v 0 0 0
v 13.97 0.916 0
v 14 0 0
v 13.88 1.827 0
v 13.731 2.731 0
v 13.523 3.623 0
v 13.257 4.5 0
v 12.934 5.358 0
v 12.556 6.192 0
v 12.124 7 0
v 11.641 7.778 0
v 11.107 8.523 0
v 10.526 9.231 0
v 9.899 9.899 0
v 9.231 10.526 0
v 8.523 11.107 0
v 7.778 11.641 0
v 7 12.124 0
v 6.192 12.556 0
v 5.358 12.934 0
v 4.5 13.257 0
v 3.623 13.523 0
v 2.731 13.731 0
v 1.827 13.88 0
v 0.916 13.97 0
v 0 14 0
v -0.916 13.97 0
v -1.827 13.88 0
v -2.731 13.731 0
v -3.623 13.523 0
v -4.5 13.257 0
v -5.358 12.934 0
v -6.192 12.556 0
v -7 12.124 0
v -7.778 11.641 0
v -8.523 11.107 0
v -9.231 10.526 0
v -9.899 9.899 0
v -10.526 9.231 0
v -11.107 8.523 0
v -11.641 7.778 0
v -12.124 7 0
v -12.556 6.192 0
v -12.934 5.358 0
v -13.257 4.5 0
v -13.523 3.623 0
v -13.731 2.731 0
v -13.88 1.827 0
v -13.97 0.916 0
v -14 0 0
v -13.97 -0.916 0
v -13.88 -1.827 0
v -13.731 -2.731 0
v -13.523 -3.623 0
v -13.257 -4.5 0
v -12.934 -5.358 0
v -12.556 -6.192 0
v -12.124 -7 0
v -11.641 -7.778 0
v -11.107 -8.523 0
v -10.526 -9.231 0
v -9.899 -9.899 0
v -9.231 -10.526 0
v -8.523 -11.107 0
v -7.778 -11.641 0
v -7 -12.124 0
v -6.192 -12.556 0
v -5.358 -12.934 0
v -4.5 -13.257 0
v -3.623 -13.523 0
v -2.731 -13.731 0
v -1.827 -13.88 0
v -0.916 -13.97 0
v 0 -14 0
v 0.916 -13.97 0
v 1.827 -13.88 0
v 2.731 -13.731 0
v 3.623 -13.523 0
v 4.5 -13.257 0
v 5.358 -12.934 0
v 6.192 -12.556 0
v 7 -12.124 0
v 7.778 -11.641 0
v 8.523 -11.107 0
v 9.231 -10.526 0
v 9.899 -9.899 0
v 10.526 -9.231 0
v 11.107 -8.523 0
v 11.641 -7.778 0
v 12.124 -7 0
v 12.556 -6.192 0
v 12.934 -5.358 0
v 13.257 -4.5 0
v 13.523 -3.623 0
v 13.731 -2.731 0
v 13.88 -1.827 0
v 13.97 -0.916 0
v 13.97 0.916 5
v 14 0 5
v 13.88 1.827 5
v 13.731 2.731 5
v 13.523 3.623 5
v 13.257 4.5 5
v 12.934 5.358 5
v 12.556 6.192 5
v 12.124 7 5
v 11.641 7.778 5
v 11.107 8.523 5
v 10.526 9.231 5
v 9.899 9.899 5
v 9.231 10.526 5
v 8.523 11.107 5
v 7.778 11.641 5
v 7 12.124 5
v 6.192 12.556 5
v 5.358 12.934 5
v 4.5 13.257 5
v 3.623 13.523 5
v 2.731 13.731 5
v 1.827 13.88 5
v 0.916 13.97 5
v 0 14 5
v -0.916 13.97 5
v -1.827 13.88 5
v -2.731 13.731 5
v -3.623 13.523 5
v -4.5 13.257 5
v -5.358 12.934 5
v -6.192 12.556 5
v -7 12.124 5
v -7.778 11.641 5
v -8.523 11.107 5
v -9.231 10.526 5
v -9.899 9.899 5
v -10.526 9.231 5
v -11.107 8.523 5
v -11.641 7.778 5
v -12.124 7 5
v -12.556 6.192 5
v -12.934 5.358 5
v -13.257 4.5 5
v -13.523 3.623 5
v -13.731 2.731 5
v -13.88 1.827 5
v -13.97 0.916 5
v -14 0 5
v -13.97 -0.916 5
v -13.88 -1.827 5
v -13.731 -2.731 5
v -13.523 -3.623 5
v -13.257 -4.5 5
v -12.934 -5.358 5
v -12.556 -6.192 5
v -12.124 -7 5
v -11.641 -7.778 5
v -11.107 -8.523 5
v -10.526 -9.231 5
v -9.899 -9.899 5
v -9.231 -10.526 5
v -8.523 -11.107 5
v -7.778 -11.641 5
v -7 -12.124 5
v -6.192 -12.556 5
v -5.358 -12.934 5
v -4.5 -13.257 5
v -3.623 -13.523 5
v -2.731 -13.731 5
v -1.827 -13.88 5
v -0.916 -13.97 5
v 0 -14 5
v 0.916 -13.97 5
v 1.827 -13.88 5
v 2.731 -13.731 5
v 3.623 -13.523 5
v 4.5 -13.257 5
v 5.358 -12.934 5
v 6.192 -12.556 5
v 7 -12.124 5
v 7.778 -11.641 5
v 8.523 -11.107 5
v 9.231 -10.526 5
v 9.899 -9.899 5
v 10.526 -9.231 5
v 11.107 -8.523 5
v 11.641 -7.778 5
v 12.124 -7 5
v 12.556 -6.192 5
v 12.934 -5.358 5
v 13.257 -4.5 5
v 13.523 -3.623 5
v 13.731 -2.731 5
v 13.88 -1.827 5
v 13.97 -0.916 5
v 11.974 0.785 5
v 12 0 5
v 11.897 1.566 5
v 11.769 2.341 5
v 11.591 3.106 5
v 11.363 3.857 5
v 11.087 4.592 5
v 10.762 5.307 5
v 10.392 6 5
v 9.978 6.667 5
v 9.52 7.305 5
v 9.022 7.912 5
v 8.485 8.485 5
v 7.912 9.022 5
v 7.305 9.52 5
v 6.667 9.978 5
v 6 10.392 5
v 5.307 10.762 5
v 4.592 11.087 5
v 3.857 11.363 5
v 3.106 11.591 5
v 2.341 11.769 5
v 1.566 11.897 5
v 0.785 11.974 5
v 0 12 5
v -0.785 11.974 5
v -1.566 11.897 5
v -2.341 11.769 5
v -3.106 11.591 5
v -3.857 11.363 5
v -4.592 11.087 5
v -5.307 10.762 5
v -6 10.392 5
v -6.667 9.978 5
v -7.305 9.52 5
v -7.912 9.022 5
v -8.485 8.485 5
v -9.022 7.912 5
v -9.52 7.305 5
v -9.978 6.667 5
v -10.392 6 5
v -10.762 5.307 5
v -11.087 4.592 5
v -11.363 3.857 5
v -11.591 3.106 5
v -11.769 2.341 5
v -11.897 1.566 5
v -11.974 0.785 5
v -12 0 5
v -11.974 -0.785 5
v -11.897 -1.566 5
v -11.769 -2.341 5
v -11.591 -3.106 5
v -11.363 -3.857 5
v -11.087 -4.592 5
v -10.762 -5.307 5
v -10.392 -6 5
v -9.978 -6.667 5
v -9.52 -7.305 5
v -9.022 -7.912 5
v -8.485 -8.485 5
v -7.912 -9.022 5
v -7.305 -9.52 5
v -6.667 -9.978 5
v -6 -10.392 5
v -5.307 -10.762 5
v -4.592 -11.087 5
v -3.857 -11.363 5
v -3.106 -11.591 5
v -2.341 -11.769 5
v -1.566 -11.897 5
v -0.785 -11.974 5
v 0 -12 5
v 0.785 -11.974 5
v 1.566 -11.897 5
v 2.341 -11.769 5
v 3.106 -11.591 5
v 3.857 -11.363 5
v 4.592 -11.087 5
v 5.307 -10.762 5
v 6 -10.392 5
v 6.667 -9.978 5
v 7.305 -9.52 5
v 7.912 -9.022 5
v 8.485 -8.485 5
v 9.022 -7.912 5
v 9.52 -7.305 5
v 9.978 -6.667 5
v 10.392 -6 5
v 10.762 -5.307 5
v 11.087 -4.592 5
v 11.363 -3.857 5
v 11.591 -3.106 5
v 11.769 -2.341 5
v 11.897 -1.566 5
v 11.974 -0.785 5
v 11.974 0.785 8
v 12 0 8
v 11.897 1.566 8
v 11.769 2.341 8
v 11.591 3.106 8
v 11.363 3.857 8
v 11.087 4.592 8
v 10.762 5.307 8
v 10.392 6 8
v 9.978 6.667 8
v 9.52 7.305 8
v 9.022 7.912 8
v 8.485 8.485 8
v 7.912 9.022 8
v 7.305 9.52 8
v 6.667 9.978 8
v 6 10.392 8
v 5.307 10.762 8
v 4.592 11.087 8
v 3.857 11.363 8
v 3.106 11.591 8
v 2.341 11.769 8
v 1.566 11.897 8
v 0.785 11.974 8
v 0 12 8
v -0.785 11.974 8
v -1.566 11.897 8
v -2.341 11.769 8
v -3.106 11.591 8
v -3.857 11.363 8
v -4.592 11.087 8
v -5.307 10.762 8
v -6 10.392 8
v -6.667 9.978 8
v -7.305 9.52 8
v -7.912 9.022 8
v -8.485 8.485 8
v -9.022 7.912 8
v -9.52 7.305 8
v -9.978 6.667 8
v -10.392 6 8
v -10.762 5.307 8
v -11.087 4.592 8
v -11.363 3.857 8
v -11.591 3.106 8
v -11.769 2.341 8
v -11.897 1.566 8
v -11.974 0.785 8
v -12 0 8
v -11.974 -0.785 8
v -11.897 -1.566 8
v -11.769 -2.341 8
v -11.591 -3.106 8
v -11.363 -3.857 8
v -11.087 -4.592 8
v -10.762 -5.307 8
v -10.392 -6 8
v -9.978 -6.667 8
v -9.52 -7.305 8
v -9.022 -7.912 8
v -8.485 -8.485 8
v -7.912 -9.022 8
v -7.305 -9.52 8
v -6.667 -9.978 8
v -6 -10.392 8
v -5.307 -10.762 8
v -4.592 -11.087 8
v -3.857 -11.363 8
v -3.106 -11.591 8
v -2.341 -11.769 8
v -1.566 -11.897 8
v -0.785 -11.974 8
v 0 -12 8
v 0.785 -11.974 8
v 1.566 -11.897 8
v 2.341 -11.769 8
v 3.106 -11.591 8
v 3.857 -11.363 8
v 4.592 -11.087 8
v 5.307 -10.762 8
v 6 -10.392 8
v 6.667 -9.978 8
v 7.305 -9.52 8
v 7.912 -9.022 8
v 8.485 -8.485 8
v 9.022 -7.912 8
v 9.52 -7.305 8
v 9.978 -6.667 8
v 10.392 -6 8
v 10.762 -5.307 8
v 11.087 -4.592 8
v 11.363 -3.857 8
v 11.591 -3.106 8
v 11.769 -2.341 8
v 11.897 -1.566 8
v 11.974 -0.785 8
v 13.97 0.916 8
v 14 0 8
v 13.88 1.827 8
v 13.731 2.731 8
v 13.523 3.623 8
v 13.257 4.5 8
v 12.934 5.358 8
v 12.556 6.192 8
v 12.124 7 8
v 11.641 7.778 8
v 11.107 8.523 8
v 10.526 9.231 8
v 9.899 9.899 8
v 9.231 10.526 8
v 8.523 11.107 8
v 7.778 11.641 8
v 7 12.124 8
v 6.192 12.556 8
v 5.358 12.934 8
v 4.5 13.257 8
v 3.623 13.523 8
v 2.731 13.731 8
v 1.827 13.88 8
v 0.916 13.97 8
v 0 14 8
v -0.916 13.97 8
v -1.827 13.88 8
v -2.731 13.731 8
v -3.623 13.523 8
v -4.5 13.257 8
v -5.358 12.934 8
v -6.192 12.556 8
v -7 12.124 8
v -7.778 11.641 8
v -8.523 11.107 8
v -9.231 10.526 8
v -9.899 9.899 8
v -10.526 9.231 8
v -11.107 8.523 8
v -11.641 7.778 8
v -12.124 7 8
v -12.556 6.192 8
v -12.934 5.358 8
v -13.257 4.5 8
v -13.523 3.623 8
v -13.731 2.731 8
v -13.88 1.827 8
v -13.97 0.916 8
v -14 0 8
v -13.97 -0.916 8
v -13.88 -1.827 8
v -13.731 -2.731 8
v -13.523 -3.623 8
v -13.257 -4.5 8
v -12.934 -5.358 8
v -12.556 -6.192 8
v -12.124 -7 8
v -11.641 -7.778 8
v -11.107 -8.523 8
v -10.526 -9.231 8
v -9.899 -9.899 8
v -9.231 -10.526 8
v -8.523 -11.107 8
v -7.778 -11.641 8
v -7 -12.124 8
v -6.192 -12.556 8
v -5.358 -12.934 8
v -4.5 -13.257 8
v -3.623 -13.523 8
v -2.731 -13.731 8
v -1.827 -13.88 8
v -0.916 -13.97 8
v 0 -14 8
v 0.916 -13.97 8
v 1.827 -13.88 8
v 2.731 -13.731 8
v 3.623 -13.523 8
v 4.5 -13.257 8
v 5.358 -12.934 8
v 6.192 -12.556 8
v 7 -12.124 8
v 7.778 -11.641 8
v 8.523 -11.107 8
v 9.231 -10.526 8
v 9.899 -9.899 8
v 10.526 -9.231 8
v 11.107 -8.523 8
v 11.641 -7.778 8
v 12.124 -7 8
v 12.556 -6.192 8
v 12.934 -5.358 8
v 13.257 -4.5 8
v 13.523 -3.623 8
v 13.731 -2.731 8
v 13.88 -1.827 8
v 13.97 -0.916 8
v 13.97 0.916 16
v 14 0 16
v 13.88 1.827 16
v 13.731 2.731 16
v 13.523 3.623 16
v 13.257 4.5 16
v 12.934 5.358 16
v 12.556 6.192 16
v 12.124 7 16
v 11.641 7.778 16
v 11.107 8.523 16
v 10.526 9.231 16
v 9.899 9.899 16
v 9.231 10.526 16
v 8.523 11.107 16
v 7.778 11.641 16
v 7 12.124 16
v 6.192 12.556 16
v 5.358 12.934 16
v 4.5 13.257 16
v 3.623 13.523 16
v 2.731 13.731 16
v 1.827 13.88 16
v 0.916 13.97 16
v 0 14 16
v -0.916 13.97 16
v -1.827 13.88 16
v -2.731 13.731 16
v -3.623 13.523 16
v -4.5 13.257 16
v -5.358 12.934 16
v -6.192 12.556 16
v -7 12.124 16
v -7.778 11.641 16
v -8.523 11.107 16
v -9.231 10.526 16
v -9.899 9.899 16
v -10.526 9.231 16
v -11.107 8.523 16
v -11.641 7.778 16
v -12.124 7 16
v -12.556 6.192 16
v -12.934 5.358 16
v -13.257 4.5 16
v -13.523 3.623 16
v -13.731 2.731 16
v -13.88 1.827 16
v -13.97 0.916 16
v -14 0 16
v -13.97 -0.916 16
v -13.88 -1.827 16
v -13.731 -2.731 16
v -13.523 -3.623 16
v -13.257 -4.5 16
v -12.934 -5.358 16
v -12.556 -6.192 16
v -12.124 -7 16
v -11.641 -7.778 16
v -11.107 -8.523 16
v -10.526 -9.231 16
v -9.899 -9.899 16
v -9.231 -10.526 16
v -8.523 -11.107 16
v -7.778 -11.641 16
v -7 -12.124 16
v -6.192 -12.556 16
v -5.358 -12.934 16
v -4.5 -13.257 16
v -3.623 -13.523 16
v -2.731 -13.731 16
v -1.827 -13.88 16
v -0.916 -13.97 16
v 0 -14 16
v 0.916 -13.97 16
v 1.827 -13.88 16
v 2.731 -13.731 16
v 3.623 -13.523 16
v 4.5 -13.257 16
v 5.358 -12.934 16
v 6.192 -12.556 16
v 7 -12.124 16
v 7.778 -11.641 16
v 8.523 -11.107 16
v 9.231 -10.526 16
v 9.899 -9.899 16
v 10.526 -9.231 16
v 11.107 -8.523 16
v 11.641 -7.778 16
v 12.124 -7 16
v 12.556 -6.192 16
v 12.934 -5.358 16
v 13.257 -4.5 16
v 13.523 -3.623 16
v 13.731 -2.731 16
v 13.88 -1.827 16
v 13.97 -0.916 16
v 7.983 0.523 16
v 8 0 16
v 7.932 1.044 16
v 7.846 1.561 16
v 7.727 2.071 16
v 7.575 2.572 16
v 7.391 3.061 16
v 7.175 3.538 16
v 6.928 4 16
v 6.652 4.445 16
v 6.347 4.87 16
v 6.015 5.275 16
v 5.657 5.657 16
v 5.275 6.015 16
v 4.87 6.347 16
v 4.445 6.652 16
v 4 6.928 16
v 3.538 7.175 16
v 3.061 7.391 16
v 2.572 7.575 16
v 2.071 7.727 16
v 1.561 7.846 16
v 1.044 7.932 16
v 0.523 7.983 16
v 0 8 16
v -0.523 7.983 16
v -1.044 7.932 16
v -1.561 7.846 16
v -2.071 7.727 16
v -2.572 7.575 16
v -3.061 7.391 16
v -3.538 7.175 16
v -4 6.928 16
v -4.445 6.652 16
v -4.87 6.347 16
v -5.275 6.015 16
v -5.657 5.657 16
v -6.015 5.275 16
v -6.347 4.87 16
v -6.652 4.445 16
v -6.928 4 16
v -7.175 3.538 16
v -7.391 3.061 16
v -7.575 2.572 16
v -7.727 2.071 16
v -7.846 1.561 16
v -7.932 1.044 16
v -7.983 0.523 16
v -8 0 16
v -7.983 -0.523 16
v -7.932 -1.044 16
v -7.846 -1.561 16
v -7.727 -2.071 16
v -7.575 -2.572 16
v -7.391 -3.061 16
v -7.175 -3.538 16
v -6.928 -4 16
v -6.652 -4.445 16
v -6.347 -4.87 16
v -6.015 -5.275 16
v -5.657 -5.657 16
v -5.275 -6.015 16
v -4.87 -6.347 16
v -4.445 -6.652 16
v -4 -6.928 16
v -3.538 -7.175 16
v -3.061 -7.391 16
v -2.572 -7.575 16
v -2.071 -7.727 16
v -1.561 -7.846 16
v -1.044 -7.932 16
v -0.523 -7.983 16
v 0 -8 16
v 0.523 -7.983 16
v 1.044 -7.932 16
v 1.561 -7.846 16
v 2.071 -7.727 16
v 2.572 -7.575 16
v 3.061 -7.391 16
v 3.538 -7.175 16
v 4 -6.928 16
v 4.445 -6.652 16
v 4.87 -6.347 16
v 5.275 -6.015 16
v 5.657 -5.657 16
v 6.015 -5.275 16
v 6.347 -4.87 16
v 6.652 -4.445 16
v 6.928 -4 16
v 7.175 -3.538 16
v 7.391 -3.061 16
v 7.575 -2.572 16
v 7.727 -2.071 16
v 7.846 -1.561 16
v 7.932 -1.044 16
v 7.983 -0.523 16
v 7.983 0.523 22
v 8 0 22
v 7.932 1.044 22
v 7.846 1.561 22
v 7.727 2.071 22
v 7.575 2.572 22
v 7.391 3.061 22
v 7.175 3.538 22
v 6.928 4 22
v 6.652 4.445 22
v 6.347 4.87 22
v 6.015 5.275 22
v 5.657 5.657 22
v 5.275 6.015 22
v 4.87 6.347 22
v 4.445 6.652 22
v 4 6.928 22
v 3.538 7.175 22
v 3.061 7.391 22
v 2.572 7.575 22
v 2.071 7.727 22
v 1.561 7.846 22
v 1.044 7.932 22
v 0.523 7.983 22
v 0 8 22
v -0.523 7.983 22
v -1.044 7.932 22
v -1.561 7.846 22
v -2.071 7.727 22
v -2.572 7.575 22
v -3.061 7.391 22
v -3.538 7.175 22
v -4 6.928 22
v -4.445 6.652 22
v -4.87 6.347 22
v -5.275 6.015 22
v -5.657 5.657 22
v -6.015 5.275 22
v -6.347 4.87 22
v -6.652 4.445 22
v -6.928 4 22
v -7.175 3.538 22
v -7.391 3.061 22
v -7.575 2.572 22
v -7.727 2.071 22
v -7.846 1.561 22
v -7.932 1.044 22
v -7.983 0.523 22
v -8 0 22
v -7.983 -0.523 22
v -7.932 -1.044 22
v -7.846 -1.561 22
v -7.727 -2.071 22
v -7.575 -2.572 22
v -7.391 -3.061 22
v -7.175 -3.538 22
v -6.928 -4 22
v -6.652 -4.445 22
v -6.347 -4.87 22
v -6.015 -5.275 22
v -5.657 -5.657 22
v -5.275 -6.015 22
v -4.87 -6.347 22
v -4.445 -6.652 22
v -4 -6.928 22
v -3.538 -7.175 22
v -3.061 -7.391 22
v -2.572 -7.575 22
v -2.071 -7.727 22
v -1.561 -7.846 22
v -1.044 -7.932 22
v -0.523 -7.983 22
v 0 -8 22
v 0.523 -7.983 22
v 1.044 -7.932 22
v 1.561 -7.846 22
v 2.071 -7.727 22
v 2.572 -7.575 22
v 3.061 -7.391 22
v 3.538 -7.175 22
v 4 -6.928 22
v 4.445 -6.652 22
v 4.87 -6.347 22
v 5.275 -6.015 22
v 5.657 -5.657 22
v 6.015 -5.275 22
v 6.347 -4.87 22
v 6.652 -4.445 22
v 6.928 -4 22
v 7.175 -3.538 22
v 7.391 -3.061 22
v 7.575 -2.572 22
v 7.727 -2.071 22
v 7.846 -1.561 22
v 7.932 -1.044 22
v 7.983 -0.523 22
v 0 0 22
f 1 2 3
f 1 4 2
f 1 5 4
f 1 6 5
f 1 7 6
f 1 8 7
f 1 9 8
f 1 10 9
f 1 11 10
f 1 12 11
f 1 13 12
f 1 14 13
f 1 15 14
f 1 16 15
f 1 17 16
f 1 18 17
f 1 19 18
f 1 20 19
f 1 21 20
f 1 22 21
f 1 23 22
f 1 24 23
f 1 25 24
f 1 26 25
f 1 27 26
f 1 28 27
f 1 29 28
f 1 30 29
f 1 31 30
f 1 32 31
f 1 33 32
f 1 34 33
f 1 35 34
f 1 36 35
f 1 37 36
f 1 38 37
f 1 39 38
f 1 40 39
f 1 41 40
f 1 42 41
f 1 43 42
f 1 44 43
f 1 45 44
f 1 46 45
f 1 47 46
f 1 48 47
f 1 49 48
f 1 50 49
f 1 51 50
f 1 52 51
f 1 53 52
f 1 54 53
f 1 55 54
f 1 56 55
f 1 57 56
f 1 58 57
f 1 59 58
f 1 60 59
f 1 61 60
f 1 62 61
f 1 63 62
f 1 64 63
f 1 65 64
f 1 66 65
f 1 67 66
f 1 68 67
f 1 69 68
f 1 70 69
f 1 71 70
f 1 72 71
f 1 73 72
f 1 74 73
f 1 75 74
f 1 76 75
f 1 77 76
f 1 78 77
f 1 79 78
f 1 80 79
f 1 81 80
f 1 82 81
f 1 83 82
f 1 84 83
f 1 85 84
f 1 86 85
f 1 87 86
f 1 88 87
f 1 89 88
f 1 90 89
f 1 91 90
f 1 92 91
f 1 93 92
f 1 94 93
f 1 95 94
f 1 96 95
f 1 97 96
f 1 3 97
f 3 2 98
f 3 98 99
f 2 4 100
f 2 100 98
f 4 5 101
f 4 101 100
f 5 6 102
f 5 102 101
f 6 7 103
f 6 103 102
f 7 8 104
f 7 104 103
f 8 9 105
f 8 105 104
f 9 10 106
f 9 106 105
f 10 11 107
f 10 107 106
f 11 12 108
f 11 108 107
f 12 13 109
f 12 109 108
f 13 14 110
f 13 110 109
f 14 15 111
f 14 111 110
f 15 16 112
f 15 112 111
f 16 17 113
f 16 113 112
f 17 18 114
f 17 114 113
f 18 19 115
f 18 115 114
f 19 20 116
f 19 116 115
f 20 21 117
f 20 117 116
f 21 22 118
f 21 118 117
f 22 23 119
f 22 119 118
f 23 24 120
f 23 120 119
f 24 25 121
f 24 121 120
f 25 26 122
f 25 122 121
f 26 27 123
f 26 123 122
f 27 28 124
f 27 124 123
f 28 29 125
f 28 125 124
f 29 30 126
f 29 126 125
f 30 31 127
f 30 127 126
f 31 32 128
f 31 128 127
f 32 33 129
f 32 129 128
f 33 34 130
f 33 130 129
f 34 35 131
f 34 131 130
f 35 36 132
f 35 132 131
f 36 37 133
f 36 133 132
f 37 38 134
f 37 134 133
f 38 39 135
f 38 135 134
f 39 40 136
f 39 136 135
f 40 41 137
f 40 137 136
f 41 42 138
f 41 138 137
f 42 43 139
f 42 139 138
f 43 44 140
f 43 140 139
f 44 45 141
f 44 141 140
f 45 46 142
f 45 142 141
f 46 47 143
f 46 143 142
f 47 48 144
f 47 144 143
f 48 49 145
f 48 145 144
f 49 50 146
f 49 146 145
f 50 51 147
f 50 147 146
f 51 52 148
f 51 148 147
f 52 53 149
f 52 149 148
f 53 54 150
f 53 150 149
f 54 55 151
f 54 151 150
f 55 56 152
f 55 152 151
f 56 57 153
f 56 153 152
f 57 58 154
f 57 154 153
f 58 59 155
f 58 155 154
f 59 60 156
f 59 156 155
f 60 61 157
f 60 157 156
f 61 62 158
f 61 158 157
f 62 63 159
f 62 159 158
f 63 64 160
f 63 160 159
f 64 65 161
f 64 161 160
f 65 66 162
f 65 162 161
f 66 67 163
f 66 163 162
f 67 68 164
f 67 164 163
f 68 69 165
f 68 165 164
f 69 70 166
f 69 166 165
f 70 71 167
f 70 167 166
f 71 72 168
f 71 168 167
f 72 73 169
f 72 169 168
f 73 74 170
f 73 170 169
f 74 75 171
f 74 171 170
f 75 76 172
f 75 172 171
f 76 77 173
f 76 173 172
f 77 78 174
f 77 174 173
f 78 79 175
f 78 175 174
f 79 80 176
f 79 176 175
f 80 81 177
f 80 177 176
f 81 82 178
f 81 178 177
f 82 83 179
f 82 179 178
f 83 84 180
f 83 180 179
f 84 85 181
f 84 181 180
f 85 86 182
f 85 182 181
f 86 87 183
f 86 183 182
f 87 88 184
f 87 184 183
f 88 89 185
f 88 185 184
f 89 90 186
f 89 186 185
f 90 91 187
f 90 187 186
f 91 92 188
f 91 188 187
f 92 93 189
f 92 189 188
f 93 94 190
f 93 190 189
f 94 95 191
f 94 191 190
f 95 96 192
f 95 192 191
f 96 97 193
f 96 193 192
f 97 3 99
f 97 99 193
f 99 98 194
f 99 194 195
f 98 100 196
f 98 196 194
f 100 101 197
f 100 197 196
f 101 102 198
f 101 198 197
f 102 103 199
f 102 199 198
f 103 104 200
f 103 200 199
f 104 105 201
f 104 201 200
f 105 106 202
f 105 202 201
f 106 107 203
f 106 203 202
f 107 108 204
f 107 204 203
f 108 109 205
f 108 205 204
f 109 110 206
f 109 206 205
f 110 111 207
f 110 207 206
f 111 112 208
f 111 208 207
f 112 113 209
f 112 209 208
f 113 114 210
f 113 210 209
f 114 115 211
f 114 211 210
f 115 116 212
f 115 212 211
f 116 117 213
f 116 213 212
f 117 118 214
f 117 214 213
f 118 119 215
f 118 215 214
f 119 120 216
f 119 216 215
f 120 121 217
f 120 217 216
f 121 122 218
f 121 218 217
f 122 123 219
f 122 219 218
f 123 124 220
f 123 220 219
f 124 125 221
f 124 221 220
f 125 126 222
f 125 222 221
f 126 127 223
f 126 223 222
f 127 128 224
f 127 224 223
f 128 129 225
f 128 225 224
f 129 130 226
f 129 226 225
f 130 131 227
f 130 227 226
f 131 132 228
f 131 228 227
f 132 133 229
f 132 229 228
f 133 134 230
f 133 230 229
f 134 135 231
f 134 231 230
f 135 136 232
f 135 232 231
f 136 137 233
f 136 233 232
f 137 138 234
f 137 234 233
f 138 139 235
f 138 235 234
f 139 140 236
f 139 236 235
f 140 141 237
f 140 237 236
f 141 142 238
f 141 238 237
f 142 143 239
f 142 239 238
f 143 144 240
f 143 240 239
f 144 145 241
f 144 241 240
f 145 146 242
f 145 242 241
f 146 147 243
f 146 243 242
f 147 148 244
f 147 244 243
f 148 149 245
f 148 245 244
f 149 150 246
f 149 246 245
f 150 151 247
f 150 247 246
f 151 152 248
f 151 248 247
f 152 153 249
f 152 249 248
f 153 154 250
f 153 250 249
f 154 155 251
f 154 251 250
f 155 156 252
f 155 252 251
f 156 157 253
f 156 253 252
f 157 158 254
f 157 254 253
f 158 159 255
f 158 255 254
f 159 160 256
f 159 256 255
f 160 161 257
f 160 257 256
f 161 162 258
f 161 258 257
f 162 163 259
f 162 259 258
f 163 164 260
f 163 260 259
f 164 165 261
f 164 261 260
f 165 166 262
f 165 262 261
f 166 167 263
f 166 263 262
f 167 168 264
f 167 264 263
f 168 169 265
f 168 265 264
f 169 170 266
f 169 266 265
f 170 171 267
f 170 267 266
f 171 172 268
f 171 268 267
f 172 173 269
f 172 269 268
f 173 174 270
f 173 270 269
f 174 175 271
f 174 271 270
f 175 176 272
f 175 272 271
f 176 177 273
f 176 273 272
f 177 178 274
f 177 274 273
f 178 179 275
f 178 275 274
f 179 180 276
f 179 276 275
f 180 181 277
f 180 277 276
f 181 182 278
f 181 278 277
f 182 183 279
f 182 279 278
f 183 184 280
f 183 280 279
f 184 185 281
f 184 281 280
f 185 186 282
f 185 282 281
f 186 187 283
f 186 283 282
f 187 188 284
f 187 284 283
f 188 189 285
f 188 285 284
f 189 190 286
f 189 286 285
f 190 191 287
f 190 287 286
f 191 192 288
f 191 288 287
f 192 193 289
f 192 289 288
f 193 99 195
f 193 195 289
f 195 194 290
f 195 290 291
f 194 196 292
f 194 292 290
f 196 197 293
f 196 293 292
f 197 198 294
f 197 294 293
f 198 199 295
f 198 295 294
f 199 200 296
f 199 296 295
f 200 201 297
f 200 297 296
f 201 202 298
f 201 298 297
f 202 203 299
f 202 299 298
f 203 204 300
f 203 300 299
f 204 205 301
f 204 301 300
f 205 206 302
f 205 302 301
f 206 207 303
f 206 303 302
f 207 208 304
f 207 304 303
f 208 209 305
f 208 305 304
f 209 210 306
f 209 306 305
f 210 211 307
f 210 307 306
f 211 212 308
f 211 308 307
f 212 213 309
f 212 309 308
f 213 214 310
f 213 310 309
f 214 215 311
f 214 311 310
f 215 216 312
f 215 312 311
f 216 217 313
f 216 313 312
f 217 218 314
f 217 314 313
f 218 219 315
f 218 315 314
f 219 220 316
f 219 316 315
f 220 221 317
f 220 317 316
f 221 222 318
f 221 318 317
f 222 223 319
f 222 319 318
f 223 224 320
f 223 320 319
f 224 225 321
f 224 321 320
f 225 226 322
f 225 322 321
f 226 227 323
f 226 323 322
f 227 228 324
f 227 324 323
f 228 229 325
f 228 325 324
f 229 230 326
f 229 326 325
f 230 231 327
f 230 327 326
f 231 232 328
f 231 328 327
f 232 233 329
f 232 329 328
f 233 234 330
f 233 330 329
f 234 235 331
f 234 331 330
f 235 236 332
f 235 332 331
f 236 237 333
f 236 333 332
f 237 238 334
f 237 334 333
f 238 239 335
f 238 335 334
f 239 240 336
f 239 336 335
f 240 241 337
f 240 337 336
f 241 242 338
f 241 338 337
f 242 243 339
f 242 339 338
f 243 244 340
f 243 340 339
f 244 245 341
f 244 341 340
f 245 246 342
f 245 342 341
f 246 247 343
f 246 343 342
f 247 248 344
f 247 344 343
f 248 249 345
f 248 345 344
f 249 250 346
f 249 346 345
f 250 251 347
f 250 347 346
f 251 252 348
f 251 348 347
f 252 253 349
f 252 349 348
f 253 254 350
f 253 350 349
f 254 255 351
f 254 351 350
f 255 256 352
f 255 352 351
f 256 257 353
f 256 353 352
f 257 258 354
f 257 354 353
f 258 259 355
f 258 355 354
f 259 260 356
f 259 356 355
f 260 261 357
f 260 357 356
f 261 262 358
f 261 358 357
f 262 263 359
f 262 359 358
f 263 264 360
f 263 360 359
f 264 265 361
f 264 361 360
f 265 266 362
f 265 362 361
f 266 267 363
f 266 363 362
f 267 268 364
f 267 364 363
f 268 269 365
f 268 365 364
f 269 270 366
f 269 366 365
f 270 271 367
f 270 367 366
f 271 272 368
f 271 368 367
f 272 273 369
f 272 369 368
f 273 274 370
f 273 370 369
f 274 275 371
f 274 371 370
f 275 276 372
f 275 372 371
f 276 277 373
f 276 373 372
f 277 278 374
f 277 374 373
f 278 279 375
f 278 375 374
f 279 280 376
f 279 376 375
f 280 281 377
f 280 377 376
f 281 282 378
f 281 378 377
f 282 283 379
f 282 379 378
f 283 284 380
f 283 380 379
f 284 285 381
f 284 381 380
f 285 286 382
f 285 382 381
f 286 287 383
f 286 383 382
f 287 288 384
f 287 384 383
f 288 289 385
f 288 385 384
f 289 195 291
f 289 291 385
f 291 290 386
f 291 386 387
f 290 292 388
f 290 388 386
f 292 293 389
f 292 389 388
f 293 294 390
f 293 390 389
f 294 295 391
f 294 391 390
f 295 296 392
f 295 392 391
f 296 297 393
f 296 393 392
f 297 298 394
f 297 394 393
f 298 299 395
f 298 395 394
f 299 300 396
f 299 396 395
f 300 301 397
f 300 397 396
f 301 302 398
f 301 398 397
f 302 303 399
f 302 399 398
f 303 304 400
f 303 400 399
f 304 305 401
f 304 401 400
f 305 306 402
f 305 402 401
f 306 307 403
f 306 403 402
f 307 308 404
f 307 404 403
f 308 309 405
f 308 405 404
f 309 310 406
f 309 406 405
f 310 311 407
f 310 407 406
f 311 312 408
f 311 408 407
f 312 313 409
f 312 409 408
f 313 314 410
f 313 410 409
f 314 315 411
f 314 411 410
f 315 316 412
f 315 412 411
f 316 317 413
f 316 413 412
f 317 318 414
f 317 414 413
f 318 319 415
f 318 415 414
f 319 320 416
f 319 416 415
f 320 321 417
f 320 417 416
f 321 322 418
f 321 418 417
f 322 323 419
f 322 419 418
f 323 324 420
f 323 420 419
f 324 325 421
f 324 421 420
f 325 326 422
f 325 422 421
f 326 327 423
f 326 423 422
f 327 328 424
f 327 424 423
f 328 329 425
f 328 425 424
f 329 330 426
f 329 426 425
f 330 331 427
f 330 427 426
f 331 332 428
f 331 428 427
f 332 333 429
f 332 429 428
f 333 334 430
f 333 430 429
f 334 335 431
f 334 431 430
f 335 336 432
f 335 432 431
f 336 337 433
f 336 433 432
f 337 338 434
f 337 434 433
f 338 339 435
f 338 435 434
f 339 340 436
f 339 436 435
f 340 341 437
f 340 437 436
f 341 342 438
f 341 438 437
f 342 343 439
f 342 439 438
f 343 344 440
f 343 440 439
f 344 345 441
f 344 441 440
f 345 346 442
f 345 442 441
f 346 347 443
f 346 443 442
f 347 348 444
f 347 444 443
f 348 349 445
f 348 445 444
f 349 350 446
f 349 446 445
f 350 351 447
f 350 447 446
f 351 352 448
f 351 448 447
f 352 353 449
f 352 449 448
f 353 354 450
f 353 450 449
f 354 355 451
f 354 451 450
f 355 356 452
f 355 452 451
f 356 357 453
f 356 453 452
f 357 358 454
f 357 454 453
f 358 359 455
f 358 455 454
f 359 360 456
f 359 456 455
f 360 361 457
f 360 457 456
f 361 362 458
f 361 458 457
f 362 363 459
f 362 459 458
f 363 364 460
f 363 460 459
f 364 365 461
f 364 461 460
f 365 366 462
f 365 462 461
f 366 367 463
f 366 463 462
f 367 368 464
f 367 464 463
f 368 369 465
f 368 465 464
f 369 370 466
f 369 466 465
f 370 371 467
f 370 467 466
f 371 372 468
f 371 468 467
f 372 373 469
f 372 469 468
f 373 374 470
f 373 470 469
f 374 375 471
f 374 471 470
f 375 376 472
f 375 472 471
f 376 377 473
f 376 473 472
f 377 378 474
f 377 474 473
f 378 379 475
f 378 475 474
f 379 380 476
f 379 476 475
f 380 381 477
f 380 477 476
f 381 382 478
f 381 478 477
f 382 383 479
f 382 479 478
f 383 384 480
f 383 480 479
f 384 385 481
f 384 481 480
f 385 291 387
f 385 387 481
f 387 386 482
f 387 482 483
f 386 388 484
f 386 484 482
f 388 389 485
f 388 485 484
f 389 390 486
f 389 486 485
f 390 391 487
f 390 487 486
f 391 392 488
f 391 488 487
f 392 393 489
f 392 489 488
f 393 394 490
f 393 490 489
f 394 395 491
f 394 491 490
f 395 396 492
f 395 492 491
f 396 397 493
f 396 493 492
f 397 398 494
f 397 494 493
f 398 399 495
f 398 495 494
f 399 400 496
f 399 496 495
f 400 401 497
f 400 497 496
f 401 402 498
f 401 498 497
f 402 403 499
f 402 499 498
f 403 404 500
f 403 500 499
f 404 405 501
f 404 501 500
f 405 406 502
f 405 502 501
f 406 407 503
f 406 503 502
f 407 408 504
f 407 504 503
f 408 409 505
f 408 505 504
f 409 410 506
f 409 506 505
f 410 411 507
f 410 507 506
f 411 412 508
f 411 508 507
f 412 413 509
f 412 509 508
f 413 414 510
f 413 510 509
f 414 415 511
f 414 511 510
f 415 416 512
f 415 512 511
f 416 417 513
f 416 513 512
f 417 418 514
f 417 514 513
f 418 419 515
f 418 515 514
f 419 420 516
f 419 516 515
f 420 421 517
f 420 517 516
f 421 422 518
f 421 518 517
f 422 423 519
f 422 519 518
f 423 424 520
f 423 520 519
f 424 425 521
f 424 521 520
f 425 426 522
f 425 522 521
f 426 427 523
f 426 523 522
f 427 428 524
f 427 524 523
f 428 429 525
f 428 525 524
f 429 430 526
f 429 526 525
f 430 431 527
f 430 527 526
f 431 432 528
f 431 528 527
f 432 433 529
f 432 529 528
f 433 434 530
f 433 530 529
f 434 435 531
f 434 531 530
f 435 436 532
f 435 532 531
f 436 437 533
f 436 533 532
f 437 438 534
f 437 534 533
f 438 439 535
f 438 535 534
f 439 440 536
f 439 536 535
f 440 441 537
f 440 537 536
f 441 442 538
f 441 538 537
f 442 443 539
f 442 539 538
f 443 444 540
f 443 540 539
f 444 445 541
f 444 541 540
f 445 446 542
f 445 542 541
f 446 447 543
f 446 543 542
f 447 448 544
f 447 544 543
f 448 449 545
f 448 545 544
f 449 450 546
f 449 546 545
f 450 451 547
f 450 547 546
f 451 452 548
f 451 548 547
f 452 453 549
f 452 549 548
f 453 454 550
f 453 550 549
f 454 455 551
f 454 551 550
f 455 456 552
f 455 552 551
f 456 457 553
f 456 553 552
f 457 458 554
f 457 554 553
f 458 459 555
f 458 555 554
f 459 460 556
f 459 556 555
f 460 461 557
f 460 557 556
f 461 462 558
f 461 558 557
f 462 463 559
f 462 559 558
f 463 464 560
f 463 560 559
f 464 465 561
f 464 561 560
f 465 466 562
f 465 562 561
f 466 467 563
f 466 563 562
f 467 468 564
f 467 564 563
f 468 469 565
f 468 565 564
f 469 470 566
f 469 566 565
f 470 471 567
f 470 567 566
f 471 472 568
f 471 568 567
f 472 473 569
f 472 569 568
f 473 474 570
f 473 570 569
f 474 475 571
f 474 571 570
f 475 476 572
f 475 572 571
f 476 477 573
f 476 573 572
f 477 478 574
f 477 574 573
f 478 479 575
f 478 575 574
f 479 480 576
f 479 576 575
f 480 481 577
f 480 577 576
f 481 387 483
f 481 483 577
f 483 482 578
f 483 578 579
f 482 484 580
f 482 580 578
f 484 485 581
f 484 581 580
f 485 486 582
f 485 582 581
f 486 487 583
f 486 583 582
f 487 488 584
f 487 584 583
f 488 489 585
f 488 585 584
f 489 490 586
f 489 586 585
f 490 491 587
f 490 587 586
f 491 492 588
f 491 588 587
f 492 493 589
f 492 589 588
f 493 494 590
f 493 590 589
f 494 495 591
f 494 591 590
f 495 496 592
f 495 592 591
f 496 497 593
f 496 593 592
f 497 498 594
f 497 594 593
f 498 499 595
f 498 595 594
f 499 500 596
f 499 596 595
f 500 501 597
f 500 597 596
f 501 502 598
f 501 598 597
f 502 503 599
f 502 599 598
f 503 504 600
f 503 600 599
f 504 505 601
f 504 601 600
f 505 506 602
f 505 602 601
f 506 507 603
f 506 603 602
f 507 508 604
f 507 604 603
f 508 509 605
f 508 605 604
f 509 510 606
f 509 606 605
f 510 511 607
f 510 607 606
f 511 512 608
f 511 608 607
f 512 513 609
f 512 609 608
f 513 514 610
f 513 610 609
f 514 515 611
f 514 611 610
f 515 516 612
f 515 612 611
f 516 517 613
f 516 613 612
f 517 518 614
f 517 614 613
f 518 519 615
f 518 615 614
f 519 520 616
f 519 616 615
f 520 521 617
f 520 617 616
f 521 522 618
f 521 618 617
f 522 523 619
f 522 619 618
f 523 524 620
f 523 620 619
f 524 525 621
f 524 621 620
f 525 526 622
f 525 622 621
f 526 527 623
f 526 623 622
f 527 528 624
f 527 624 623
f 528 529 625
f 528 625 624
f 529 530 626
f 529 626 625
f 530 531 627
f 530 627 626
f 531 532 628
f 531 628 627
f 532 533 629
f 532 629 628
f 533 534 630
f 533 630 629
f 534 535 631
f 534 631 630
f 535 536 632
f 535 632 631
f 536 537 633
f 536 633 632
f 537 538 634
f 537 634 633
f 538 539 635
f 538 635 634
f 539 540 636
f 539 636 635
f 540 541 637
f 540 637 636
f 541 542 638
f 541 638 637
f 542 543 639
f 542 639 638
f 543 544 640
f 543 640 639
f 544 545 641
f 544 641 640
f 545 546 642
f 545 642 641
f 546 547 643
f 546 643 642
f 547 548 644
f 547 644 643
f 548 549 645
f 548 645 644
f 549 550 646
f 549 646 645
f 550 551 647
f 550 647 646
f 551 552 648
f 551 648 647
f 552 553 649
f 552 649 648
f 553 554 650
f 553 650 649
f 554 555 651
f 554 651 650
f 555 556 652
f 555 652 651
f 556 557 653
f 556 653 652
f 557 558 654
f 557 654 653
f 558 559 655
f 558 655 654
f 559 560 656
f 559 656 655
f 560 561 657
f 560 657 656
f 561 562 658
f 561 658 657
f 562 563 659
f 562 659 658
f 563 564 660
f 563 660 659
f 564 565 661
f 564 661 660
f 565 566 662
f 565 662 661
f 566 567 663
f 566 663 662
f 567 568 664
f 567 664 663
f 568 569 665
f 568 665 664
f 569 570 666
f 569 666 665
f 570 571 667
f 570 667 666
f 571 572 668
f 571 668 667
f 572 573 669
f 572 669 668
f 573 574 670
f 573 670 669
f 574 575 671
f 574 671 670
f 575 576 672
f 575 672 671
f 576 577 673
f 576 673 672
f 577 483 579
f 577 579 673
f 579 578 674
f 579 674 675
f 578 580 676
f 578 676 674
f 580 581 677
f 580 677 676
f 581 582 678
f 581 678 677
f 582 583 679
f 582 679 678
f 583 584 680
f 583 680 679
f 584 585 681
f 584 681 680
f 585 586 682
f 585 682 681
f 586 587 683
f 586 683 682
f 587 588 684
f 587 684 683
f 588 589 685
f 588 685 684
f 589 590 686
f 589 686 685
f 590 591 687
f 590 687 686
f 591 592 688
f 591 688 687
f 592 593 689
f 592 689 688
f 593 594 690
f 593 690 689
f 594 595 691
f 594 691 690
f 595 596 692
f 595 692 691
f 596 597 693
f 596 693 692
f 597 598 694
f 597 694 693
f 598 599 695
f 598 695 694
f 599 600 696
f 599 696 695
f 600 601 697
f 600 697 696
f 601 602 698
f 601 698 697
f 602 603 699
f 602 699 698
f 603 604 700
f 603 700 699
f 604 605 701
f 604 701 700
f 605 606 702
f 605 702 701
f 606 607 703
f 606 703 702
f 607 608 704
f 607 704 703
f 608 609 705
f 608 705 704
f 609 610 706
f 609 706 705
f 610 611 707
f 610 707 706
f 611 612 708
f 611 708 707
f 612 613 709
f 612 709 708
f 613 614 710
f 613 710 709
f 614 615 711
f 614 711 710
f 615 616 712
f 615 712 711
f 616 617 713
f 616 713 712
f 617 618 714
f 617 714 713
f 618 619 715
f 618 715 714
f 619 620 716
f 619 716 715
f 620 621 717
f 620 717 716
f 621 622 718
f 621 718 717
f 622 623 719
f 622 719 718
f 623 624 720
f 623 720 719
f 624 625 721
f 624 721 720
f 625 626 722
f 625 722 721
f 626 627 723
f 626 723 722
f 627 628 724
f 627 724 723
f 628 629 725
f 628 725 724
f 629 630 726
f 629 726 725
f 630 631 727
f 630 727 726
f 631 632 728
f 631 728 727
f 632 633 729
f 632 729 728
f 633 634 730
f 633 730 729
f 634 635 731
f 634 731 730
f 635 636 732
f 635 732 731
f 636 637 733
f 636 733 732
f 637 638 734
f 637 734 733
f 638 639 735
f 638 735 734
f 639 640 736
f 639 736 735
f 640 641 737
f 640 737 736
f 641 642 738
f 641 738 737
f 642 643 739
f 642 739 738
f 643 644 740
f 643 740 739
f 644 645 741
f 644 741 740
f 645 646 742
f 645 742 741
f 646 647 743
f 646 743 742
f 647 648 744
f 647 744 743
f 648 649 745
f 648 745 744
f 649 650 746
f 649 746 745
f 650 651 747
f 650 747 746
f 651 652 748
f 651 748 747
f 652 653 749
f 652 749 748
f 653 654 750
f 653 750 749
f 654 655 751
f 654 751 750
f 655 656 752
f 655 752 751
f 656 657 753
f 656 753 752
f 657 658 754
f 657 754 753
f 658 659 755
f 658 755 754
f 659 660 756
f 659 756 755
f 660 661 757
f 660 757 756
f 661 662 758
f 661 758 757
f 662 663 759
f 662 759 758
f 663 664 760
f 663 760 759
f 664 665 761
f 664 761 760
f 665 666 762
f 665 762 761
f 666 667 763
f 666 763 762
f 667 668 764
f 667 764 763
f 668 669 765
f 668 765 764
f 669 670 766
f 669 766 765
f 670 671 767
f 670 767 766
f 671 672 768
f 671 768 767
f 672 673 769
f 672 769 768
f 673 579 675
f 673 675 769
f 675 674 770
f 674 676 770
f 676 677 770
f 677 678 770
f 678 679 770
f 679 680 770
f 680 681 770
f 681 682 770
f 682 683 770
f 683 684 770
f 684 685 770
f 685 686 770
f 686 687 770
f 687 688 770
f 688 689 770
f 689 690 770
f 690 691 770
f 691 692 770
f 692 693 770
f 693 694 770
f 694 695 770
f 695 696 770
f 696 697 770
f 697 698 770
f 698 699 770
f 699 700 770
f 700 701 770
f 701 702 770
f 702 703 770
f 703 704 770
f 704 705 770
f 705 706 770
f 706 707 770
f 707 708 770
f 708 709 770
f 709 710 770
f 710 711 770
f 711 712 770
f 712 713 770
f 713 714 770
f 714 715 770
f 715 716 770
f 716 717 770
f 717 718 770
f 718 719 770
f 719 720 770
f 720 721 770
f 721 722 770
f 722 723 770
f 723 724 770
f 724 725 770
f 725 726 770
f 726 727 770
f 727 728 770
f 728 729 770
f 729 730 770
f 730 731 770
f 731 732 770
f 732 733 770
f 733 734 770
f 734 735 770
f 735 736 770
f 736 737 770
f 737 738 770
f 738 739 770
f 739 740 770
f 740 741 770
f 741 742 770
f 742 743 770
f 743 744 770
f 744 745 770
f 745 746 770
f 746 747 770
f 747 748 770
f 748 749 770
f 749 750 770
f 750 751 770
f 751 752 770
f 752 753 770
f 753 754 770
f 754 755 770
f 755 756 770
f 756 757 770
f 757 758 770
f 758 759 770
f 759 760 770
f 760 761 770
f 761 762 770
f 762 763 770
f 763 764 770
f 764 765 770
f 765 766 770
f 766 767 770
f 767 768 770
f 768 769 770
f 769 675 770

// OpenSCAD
// Original MechIntel educational model. CC0-1.0. Units: mm.
// Not a standardized or load-rated component.
$fn=96;
// Section points: [radius, height], mm. Edit to change the profile.
section=[[0, 0], [14, 0], [14, 5], [12, 5], [12, 8], [14, 8], [14, 16], [8, 16], [8, 22], [0, 22]];
rotate_extrude($fn=96) polygon(points=section);
